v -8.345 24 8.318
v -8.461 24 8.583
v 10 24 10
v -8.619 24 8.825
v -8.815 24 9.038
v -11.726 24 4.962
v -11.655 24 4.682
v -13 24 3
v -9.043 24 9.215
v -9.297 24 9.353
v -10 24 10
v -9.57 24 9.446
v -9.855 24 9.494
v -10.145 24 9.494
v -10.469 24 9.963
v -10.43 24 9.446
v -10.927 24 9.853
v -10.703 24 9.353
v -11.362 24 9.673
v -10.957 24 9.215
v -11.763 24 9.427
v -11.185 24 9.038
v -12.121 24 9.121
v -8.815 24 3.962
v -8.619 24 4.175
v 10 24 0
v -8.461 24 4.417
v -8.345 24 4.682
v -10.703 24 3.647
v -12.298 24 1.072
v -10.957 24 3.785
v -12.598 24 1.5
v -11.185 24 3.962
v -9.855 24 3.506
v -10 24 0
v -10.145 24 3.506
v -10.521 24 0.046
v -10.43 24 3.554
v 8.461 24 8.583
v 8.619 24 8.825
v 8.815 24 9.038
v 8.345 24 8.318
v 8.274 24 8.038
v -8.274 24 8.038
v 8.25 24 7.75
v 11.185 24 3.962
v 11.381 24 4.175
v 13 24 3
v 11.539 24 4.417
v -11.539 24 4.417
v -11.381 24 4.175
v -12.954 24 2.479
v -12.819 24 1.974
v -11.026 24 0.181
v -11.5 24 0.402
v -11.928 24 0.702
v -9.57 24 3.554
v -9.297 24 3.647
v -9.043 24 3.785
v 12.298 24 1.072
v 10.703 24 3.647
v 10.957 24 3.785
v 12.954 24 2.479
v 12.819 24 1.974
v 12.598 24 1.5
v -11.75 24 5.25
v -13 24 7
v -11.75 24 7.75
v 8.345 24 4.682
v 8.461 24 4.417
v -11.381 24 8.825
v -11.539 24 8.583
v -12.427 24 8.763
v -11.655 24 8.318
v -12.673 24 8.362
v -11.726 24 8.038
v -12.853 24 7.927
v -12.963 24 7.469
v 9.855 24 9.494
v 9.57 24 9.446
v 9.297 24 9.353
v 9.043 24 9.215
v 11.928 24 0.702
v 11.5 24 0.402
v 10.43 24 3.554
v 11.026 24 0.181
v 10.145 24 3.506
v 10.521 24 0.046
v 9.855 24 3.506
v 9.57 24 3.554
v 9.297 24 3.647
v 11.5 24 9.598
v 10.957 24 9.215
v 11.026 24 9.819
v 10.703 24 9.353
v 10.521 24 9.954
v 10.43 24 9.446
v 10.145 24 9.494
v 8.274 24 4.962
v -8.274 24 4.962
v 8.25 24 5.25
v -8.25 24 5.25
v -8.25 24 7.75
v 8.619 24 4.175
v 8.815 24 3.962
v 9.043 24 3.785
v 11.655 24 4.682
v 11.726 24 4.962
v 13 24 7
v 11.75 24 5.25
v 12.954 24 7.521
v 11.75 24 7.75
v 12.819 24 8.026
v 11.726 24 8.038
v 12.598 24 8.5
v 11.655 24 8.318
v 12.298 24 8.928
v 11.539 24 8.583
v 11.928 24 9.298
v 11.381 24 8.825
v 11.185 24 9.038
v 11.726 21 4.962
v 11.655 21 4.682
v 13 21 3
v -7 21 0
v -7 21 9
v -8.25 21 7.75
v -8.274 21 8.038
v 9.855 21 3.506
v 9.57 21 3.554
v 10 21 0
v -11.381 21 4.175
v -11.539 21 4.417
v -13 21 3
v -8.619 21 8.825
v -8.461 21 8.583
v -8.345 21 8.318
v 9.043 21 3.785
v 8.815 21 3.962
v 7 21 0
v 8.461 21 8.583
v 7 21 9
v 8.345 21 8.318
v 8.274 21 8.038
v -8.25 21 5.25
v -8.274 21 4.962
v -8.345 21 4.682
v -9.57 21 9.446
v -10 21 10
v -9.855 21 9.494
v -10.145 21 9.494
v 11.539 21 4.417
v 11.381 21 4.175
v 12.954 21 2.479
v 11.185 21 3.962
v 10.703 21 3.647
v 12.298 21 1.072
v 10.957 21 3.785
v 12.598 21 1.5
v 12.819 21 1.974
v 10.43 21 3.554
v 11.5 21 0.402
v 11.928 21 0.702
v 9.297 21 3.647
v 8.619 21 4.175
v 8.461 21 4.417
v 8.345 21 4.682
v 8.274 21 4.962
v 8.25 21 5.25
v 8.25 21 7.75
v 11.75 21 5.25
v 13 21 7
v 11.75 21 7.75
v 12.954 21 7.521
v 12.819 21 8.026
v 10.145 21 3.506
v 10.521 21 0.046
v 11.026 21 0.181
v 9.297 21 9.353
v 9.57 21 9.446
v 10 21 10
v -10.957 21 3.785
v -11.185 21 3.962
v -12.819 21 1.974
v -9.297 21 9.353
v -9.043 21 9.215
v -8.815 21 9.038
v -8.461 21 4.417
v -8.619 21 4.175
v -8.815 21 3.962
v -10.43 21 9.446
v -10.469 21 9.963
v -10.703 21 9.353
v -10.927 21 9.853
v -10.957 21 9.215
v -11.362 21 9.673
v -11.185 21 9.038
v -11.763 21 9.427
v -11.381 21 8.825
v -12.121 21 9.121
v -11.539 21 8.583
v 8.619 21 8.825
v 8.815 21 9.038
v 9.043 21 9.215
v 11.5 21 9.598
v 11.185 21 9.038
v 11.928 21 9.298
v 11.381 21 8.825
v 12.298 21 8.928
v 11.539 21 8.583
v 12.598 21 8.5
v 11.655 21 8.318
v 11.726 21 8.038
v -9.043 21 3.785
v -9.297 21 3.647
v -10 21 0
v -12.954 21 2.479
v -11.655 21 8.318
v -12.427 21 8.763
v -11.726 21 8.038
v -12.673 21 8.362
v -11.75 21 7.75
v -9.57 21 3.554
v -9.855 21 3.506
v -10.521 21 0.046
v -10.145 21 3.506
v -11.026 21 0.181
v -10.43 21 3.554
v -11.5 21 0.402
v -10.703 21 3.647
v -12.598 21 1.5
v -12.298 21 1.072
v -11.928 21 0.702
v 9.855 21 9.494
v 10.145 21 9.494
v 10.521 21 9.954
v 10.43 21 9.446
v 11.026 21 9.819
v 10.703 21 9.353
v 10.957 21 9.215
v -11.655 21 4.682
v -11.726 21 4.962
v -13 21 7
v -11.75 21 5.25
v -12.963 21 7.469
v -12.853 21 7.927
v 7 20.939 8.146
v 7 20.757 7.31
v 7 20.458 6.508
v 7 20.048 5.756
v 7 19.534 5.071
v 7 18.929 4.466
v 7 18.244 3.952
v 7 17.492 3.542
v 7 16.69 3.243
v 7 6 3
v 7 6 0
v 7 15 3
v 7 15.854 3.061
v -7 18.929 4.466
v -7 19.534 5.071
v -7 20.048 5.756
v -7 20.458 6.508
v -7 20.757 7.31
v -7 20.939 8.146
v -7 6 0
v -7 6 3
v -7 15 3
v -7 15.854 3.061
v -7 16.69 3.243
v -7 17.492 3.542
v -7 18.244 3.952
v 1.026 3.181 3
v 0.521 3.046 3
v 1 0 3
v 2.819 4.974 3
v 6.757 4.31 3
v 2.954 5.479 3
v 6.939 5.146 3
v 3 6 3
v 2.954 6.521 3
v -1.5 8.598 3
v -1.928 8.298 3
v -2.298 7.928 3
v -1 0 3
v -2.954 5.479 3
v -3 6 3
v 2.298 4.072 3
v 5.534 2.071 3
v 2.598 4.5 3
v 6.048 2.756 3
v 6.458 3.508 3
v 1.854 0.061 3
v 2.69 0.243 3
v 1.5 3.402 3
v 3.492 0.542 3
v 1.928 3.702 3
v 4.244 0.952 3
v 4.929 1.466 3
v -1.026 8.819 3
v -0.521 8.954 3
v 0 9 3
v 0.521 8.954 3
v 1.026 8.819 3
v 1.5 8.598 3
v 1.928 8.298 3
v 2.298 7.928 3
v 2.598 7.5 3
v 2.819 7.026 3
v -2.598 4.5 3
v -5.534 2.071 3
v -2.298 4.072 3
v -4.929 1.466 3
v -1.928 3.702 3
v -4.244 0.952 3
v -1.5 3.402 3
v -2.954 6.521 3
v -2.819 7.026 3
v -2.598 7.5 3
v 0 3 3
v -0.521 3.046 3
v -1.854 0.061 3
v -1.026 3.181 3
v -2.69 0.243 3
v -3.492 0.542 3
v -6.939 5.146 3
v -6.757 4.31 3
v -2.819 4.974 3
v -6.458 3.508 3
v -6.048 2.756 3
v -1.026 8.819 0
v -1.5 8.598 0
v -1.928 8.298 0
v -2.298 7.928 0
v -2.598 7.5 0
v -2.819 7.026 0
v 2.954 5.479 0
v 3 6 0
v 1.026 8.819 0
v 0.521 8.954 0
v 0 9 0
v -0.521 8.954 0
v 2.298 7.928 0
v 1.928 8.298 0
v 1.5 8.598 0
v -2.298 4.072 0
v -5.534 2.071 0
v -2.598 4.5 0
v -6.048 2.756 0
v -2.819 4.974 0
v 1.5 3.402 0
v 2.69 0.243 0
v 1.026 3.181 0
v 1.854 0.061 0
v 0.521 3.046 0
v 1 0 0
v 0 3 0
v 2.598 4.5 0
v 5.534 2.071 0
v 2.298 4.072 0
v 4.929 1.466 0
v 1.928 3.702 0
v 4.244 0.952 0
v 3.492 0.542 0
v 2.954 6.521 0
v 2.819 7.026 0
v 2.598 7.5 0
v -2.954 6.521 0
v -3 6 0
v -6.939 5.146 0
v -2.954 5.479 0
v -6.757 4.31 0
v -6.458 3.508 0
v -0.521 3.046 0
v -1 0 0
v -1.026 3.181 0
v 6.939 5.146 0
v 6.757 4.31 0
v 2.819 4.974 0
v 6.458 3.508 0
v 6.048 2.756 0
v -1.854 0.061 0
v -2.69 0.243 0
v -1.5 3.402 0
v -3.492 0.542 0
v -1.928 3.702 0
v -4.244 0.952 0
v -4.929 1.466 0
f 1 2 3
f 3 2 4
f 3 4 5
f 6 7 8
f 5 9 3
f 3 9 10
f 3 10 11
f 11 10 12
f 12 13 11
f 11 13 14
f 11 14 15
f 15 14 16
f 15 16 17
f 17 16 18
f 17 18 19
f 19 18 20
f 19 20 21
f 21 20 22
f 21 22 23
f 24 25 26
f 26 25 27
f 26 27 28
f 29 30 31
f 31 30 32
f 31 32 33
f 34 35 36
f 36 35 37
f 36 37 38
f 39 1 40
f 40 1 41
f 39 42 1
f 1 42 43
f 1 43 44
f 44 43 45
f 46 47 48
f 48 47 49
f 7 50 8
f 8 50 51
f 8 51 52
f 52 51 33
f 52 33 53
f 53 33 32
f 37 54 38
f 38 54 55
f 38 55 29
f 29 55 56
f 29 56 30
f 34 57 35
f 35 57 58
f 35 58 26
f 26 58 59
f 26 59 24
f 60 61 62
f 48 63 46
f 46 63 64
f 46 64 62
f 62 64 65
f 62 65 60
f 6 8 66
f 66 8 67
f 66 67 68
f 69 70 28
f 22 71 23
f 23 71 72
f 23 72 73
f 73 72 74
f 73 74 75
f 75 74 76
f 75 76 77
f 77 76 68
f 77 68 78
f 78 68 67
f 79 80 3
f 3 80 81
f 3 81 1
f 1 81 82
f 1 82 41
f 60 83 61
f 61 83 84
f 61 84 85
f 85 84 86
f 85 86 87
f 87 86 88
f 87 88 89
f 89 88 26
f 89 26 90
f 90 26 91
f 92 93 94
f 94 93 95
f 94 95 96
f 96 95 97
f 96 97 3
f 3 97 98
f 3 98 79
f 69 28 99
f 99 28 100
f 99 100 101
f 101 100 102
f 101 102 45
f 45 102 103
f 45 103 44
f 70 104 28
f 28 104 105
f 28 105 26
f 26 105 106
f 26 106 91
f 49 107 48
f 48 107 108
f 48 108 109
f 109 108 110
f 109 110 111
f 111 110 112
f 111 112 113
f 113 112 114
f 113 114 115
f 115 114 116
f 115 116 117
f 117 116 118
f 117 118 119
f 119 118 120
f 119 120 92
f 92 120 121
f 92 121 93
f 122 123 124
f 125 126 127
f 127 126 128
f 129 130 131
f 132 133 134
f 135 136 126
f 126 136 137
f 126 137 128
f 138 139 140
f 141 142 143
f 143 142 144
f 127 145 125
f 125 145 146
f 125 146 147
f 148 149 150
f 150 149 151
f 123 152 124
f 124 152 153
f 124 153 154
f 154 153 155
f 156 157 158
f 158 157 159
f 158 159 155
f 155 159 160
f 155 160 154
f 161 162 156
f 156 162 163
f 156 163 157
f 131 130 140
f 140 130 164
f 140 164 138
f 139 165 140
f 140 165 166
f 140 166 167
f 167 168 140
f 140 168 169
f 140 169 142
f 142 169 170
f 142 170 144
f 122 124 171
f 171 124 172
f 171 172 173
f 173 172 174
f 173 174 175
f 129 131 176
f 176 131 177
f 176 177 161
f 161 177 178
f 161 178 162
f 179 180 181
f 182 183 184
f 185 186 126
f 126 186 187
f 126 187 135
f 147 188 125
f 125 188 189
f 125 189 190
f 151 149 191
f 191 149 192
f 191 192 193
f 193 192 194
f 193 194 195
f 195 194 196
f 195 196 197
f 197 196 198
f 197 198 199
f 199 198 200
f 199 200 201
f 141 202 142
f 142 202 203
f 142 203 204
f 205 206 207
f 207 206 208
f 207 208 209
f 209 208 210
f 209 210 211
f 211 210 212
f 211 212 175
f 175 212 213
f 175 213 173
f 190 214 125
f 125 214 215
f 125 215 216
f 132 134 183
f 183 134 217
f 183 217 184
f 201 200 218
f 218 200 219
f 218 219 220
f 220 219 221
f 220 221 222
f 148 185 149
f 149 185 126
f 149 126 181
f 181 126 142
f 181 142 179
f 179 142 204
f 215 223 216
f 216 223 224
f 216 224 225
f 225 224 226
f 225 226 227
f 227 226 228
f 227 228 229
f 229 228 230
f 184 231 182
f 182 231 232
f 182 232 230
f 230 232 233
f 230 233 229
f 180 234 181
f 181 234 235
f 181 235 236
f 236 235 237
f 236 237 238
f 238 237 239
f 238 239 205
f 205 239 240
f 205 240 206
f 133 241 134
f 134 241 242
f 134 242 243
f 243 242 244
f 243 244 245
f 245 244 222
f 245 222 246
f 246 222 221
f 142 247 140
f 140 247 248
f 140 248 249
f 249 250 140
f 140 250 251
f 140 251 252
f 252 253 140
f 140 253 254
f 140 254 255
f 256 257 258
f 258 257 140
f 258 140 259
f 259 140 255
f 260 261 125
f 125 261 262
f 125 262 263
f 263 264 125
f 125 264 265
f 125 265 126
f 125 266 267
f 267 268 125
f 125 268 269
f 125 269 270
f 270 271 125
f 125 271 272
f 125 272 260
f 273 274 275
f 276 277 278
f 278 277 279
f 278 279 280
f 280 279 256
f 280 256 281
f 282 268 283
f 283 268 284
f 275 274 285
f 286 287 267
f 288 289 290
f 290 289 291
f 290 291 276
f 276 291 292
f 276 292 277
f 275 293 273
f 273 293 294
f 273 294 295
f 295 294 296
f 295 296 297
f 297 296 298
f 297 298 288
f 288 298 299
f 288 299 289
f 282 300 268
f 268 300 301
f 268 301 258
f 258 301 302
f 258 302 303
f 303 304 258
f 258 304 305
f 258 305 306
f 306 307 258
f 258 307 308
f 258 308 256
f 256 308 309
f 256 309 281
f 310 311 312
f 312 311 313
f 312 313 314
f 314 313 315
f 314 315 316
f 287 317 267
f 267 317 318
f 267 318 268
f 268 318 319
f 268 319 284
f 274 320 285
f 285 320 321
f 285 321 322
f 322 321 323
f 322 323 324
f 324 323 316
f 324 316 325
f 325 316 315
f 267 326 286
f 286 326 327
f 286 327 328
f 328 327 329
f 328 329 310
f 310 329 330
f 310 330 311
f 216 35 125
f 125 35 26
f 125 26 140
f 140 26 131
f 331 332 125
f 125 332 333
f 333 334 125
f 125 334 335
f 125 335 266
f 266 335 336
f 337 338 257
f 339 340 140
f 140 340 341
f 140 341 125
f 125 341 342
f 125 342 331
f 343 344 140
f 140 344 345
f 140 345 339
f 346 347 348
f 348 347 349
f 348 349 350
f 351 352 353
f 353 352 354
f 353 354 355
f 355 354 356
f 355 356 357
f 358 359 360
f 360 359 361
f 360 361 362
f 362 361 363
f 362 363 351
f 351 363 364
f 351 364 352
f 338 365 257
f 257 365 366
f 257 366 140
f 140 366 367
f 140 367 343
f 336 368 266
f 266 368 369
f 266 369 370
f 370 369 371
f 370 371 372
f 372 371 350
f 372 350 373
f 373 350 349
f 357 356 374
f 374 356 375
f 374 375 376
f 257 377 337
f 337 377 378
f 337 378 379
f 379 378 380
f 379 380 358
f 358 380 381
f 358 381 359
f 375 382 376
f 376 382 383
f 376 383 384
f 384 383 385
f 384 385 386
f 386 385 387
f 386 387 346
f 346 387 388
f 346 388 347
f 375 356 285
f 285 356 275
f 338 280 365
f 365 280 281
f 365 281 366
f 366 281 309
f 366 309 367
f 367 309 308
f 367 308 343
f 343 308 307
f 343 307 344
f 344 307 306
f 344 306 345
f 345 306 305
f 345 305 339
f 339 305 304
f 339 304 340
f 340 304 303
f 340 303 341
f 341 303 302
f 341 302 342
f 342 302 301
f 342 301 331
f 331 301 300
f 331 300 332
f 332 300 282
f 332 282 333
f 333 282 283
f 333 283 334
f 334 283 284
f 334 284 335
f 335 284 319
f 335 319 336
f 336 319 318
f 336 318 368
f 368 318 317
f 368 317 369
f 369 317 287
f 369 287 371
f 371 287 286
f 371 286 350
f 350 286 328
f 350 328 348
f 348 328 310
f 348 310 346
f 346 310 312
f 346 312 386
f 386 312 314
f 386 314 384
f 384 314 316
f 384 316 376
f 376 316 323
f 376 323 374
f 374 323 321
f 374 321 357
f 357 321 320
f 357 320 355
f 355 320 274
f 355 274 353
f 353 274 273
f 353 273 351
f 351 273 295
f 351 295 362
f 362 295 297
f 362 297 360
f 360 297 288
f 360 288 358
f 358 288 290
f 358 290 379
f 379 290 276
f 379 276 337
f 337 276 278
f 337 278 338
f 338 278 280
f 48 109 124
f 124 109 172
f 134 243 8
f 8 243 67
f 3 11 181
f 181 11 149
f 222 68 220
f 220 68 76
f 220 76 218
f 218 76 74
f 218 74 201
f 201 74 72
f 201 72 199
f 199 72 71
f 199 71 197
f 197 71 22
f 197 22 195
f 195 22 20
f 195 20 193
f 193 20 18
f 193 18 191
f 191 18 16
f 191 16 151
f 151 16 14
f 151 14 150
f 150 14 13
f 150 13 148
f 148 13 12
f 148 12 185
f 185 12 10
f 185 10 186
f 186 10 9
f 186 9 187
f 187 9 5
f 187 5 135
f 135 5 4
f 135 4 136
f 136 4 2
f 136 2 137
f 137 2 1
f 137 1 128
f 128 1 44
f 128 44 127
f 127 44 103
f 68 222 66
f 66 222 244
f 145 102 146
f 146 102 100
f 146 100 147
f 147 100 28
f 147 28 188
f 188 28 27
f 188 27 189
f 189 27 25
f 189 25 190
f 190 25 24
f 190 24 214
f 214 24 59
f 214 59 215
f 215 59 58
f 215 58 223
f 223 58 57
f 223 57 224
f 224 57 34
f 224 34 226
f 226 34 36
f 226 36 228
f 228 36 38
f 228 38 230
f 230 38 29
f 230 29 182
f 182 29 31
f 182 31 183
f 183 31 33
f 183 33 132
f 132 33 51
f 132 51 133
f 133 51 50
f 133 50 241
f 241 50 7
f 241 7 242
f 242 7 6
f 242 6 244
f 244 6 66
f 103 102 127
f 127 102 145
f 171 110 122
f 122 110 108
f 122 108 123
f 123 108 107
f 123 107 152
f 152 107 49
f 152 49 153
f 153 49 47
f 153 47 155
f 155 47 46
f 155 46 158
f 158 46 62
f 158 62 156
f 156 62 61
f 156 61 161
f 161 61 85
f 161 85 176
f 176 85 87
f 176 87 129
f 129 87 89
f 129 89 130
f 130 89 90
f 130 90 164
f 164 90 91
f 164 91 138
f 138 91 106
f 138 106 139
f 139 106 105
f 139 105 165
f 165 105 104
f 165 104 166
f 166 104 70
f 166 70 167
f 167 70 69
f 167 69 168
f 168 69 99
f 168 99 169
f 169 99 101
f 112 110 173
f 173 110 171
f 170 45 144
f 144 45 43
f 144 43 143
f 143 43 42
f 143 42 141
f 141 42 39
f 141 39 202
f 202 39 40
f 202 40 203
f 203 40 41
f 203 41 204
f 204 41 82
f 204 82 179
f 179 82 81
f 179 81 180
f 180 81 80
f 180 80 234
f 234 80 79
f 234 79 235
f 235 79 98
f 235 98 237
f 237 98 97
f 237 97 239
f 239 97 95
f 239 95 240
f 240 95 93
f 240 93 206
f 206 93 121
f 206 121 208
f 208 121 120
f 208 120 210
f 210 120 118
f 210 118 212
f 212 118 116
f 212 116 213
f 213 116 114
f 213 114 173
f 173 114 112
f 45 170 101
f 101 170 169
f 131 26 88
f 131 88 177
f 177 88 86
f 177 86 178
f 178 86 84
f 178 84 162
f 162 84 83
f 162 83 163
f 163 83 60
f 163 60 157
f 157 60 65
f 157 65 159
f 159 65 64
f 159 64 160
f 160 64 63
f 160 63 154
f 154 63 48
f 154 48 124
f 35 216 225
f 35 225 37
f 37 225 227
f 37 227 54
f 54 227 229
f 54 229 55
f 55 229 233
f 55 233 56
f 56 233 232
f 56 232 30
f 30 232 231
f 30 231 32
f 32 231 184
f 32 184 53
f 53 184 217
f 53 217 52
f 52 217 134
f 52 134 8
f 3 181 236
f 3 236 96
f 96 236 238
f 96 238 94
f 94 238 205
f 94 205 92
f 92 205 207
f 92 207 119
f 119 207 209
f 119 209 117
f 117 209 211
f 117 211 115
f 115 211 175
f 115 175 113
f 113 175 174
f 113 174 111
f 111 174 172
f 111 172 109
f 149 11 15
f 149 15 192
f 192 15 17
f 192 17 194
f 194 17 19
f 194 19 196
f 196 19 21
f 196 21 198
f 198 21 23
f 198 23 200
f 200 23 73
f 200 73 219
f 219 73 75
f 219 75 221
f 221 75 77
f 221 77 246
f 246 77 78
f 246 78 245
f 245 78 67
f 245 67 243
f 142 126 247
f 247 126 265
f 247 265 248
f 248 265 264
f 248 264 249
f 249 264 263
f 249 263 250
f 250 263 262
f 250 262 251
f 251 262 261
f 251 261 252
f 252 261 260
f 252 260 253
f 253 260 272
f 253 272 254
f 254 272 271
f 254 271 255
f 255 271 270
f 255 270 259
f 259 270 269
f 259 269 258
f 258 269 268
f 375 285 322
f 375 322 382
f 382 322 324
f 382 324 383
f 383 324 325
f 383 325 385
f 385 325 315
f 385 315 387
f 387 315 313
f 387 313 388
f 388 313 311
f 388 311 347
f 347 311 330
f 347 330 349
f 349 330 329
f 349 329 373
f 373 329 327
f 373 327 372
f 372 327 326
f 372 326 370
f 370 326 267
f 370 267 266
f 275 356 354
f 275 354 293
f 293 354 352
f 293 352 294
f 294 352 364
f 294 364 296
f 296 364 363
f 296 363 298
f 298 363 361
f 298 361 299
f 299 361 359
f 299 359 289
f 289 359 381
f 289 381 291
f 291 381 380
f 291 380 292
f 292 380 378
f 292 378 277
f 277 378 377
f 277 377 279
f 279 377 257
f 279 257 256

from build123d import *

# Parameters (mm, degrees)
SKETCH1_W           = 14
SKETCH1_H           = 3
BOSS_EXTRUDE1_DEPTH = 24
CUT_EXTRUDE1_REACH  = 27.179
SKETCH2_R           = 3
SKETCH3_W           = 26
SKETCH3_H           = 3
BOSS_EXTRUDE2_DEPTH = 10
CUT_EXTRUDE2_REACH  = 31.069
FILLET1_R           = 3
FILLET2_R           = 6


with BuildPart() as part:
    # Sketch1 → Boss-Extrude1 (new body)
    with BuildSketch(Plane(origin=(0, 0, 0), x_dir=(1, 0, 0), z_dir=(0, 1, 0))):
        with Locations((0, -1.5)):
            Rectangle(SKETCH1_W, SKETCH1_H)
    extrude(amount=BOSS_EXTRUDE1_DEPTH)

    # Sketch2 → Cut-Extrude1 (cut, up to next)
    with BuildSketch(Plane.XY.offset(3), mode=Mode.PRIVATE) as cut_extrude1_sk1:
        with Locations((0, 6)):
            Circle(SKETCH2_R)
    cut_extrude1_tool1 = extrude(cut_extrude1_sk1.sketch, amount=-CUT_EXTRUDE1_REACH, mode=Mode.PRIVATE) & part.part
    add(cut_extrude1_tool1.solids().sort_by_distance((0, 6, 3))[0], mode=Mode.SUBTRACT)

    # Sketch3 → Boss-Extrude2 (add)
    with BuildSketch(Plane.XY):
        with Locations((0, 22.5)):
            Rectangle(SKETCH3_W, SKETCH3_H)
    extrude(amount=BOSS_EXTRUDE2_DEPTH)

    # Sketch4 → Cut-Extrude2 (cut, up to next)
    with BuildSketch(Plane(origin=(0, 24, 0), x_dir=(1, 0, 0), z_dir=(0, 1, 0)), mode=Mode.PRIVATE) as cut_extrude2_sk1:
        with BuildLine():
            ThreePointArc((8.25, -5.25), (10, -3.5), (11.75, -5.25))
            Line((11.75, -5.25), (11.75, -7.75))
            ThreePointArc((11.75, -7.75), (10, -9.5), (8.25, -7.75))
            Line((8.25, -7.75), (8.25, -5.25))
        make_face()
    cut_extrude2_tool1 = extrude(cut_extrude2_sk1.sketch, amount=-CUT_EXTRUDE2_REACH, mode=Mode.PRIVATE) & part.part
    # Sketch4 → Cut-Extrude2 (cut, up to next)
    with BuildSketch(Plane(origin=(0, 24, 0), x_dir=(1, 0, 0), z_dir=(0, 1, 0)), mode=Mode.PRIVATE) as cut_extrude2_sk2:
        with BuildLine():
            Line((-8.25, -7.75), (-8.25, -5.25))
            ThreePointArc((-8.25, -5.25), (-10, -3.5), (-11.75, -5.25))
            Line((-11.75, -5.25), (-11.75, -7.75))
            ThreePointArc((-11.75, -7.75), (-10, -9.5), (-8.25, -7.75))
        make_face()
    cut_extrude2_tool2 = extrude(cut_extrude2_sk2.sketch, amount=-CUT_EXTRUDE2_REACH, mode=Mode.PRIVATE) & part.part
    add(cut_extrude2_tool1.solids().sort_by_distance((10, 24, 6.5))[0], mode=Mode.SUBTRACT)
    add(cut_extrude2_tool2.solids().sort_by_distance((-10, 24, 6.5))[0], mode=Mode.SUBTRACT)

    # Fillet1
    fillet1_edges = [part.edges().sort_by_distance(p)[0] for p in [
        (13, 22.5, 0),
        (-13, 22.5, 0),
        (13, 22.5, 10),
        (-13, 22.5, 10),
    ]]
    fillet(fillet1_edges, radius=FILLET1_R)

    # Fillet2
    fillet2_edges = [part.edges().sort_by_distance(p)[0] for p in [
        (0, 21, 3),
        (-7, 0, 1.5),
        (7, 0, 1.5),
    ]]
    fillet(fillet2_edges, radius=FILLET2_R)


solid = part.part
